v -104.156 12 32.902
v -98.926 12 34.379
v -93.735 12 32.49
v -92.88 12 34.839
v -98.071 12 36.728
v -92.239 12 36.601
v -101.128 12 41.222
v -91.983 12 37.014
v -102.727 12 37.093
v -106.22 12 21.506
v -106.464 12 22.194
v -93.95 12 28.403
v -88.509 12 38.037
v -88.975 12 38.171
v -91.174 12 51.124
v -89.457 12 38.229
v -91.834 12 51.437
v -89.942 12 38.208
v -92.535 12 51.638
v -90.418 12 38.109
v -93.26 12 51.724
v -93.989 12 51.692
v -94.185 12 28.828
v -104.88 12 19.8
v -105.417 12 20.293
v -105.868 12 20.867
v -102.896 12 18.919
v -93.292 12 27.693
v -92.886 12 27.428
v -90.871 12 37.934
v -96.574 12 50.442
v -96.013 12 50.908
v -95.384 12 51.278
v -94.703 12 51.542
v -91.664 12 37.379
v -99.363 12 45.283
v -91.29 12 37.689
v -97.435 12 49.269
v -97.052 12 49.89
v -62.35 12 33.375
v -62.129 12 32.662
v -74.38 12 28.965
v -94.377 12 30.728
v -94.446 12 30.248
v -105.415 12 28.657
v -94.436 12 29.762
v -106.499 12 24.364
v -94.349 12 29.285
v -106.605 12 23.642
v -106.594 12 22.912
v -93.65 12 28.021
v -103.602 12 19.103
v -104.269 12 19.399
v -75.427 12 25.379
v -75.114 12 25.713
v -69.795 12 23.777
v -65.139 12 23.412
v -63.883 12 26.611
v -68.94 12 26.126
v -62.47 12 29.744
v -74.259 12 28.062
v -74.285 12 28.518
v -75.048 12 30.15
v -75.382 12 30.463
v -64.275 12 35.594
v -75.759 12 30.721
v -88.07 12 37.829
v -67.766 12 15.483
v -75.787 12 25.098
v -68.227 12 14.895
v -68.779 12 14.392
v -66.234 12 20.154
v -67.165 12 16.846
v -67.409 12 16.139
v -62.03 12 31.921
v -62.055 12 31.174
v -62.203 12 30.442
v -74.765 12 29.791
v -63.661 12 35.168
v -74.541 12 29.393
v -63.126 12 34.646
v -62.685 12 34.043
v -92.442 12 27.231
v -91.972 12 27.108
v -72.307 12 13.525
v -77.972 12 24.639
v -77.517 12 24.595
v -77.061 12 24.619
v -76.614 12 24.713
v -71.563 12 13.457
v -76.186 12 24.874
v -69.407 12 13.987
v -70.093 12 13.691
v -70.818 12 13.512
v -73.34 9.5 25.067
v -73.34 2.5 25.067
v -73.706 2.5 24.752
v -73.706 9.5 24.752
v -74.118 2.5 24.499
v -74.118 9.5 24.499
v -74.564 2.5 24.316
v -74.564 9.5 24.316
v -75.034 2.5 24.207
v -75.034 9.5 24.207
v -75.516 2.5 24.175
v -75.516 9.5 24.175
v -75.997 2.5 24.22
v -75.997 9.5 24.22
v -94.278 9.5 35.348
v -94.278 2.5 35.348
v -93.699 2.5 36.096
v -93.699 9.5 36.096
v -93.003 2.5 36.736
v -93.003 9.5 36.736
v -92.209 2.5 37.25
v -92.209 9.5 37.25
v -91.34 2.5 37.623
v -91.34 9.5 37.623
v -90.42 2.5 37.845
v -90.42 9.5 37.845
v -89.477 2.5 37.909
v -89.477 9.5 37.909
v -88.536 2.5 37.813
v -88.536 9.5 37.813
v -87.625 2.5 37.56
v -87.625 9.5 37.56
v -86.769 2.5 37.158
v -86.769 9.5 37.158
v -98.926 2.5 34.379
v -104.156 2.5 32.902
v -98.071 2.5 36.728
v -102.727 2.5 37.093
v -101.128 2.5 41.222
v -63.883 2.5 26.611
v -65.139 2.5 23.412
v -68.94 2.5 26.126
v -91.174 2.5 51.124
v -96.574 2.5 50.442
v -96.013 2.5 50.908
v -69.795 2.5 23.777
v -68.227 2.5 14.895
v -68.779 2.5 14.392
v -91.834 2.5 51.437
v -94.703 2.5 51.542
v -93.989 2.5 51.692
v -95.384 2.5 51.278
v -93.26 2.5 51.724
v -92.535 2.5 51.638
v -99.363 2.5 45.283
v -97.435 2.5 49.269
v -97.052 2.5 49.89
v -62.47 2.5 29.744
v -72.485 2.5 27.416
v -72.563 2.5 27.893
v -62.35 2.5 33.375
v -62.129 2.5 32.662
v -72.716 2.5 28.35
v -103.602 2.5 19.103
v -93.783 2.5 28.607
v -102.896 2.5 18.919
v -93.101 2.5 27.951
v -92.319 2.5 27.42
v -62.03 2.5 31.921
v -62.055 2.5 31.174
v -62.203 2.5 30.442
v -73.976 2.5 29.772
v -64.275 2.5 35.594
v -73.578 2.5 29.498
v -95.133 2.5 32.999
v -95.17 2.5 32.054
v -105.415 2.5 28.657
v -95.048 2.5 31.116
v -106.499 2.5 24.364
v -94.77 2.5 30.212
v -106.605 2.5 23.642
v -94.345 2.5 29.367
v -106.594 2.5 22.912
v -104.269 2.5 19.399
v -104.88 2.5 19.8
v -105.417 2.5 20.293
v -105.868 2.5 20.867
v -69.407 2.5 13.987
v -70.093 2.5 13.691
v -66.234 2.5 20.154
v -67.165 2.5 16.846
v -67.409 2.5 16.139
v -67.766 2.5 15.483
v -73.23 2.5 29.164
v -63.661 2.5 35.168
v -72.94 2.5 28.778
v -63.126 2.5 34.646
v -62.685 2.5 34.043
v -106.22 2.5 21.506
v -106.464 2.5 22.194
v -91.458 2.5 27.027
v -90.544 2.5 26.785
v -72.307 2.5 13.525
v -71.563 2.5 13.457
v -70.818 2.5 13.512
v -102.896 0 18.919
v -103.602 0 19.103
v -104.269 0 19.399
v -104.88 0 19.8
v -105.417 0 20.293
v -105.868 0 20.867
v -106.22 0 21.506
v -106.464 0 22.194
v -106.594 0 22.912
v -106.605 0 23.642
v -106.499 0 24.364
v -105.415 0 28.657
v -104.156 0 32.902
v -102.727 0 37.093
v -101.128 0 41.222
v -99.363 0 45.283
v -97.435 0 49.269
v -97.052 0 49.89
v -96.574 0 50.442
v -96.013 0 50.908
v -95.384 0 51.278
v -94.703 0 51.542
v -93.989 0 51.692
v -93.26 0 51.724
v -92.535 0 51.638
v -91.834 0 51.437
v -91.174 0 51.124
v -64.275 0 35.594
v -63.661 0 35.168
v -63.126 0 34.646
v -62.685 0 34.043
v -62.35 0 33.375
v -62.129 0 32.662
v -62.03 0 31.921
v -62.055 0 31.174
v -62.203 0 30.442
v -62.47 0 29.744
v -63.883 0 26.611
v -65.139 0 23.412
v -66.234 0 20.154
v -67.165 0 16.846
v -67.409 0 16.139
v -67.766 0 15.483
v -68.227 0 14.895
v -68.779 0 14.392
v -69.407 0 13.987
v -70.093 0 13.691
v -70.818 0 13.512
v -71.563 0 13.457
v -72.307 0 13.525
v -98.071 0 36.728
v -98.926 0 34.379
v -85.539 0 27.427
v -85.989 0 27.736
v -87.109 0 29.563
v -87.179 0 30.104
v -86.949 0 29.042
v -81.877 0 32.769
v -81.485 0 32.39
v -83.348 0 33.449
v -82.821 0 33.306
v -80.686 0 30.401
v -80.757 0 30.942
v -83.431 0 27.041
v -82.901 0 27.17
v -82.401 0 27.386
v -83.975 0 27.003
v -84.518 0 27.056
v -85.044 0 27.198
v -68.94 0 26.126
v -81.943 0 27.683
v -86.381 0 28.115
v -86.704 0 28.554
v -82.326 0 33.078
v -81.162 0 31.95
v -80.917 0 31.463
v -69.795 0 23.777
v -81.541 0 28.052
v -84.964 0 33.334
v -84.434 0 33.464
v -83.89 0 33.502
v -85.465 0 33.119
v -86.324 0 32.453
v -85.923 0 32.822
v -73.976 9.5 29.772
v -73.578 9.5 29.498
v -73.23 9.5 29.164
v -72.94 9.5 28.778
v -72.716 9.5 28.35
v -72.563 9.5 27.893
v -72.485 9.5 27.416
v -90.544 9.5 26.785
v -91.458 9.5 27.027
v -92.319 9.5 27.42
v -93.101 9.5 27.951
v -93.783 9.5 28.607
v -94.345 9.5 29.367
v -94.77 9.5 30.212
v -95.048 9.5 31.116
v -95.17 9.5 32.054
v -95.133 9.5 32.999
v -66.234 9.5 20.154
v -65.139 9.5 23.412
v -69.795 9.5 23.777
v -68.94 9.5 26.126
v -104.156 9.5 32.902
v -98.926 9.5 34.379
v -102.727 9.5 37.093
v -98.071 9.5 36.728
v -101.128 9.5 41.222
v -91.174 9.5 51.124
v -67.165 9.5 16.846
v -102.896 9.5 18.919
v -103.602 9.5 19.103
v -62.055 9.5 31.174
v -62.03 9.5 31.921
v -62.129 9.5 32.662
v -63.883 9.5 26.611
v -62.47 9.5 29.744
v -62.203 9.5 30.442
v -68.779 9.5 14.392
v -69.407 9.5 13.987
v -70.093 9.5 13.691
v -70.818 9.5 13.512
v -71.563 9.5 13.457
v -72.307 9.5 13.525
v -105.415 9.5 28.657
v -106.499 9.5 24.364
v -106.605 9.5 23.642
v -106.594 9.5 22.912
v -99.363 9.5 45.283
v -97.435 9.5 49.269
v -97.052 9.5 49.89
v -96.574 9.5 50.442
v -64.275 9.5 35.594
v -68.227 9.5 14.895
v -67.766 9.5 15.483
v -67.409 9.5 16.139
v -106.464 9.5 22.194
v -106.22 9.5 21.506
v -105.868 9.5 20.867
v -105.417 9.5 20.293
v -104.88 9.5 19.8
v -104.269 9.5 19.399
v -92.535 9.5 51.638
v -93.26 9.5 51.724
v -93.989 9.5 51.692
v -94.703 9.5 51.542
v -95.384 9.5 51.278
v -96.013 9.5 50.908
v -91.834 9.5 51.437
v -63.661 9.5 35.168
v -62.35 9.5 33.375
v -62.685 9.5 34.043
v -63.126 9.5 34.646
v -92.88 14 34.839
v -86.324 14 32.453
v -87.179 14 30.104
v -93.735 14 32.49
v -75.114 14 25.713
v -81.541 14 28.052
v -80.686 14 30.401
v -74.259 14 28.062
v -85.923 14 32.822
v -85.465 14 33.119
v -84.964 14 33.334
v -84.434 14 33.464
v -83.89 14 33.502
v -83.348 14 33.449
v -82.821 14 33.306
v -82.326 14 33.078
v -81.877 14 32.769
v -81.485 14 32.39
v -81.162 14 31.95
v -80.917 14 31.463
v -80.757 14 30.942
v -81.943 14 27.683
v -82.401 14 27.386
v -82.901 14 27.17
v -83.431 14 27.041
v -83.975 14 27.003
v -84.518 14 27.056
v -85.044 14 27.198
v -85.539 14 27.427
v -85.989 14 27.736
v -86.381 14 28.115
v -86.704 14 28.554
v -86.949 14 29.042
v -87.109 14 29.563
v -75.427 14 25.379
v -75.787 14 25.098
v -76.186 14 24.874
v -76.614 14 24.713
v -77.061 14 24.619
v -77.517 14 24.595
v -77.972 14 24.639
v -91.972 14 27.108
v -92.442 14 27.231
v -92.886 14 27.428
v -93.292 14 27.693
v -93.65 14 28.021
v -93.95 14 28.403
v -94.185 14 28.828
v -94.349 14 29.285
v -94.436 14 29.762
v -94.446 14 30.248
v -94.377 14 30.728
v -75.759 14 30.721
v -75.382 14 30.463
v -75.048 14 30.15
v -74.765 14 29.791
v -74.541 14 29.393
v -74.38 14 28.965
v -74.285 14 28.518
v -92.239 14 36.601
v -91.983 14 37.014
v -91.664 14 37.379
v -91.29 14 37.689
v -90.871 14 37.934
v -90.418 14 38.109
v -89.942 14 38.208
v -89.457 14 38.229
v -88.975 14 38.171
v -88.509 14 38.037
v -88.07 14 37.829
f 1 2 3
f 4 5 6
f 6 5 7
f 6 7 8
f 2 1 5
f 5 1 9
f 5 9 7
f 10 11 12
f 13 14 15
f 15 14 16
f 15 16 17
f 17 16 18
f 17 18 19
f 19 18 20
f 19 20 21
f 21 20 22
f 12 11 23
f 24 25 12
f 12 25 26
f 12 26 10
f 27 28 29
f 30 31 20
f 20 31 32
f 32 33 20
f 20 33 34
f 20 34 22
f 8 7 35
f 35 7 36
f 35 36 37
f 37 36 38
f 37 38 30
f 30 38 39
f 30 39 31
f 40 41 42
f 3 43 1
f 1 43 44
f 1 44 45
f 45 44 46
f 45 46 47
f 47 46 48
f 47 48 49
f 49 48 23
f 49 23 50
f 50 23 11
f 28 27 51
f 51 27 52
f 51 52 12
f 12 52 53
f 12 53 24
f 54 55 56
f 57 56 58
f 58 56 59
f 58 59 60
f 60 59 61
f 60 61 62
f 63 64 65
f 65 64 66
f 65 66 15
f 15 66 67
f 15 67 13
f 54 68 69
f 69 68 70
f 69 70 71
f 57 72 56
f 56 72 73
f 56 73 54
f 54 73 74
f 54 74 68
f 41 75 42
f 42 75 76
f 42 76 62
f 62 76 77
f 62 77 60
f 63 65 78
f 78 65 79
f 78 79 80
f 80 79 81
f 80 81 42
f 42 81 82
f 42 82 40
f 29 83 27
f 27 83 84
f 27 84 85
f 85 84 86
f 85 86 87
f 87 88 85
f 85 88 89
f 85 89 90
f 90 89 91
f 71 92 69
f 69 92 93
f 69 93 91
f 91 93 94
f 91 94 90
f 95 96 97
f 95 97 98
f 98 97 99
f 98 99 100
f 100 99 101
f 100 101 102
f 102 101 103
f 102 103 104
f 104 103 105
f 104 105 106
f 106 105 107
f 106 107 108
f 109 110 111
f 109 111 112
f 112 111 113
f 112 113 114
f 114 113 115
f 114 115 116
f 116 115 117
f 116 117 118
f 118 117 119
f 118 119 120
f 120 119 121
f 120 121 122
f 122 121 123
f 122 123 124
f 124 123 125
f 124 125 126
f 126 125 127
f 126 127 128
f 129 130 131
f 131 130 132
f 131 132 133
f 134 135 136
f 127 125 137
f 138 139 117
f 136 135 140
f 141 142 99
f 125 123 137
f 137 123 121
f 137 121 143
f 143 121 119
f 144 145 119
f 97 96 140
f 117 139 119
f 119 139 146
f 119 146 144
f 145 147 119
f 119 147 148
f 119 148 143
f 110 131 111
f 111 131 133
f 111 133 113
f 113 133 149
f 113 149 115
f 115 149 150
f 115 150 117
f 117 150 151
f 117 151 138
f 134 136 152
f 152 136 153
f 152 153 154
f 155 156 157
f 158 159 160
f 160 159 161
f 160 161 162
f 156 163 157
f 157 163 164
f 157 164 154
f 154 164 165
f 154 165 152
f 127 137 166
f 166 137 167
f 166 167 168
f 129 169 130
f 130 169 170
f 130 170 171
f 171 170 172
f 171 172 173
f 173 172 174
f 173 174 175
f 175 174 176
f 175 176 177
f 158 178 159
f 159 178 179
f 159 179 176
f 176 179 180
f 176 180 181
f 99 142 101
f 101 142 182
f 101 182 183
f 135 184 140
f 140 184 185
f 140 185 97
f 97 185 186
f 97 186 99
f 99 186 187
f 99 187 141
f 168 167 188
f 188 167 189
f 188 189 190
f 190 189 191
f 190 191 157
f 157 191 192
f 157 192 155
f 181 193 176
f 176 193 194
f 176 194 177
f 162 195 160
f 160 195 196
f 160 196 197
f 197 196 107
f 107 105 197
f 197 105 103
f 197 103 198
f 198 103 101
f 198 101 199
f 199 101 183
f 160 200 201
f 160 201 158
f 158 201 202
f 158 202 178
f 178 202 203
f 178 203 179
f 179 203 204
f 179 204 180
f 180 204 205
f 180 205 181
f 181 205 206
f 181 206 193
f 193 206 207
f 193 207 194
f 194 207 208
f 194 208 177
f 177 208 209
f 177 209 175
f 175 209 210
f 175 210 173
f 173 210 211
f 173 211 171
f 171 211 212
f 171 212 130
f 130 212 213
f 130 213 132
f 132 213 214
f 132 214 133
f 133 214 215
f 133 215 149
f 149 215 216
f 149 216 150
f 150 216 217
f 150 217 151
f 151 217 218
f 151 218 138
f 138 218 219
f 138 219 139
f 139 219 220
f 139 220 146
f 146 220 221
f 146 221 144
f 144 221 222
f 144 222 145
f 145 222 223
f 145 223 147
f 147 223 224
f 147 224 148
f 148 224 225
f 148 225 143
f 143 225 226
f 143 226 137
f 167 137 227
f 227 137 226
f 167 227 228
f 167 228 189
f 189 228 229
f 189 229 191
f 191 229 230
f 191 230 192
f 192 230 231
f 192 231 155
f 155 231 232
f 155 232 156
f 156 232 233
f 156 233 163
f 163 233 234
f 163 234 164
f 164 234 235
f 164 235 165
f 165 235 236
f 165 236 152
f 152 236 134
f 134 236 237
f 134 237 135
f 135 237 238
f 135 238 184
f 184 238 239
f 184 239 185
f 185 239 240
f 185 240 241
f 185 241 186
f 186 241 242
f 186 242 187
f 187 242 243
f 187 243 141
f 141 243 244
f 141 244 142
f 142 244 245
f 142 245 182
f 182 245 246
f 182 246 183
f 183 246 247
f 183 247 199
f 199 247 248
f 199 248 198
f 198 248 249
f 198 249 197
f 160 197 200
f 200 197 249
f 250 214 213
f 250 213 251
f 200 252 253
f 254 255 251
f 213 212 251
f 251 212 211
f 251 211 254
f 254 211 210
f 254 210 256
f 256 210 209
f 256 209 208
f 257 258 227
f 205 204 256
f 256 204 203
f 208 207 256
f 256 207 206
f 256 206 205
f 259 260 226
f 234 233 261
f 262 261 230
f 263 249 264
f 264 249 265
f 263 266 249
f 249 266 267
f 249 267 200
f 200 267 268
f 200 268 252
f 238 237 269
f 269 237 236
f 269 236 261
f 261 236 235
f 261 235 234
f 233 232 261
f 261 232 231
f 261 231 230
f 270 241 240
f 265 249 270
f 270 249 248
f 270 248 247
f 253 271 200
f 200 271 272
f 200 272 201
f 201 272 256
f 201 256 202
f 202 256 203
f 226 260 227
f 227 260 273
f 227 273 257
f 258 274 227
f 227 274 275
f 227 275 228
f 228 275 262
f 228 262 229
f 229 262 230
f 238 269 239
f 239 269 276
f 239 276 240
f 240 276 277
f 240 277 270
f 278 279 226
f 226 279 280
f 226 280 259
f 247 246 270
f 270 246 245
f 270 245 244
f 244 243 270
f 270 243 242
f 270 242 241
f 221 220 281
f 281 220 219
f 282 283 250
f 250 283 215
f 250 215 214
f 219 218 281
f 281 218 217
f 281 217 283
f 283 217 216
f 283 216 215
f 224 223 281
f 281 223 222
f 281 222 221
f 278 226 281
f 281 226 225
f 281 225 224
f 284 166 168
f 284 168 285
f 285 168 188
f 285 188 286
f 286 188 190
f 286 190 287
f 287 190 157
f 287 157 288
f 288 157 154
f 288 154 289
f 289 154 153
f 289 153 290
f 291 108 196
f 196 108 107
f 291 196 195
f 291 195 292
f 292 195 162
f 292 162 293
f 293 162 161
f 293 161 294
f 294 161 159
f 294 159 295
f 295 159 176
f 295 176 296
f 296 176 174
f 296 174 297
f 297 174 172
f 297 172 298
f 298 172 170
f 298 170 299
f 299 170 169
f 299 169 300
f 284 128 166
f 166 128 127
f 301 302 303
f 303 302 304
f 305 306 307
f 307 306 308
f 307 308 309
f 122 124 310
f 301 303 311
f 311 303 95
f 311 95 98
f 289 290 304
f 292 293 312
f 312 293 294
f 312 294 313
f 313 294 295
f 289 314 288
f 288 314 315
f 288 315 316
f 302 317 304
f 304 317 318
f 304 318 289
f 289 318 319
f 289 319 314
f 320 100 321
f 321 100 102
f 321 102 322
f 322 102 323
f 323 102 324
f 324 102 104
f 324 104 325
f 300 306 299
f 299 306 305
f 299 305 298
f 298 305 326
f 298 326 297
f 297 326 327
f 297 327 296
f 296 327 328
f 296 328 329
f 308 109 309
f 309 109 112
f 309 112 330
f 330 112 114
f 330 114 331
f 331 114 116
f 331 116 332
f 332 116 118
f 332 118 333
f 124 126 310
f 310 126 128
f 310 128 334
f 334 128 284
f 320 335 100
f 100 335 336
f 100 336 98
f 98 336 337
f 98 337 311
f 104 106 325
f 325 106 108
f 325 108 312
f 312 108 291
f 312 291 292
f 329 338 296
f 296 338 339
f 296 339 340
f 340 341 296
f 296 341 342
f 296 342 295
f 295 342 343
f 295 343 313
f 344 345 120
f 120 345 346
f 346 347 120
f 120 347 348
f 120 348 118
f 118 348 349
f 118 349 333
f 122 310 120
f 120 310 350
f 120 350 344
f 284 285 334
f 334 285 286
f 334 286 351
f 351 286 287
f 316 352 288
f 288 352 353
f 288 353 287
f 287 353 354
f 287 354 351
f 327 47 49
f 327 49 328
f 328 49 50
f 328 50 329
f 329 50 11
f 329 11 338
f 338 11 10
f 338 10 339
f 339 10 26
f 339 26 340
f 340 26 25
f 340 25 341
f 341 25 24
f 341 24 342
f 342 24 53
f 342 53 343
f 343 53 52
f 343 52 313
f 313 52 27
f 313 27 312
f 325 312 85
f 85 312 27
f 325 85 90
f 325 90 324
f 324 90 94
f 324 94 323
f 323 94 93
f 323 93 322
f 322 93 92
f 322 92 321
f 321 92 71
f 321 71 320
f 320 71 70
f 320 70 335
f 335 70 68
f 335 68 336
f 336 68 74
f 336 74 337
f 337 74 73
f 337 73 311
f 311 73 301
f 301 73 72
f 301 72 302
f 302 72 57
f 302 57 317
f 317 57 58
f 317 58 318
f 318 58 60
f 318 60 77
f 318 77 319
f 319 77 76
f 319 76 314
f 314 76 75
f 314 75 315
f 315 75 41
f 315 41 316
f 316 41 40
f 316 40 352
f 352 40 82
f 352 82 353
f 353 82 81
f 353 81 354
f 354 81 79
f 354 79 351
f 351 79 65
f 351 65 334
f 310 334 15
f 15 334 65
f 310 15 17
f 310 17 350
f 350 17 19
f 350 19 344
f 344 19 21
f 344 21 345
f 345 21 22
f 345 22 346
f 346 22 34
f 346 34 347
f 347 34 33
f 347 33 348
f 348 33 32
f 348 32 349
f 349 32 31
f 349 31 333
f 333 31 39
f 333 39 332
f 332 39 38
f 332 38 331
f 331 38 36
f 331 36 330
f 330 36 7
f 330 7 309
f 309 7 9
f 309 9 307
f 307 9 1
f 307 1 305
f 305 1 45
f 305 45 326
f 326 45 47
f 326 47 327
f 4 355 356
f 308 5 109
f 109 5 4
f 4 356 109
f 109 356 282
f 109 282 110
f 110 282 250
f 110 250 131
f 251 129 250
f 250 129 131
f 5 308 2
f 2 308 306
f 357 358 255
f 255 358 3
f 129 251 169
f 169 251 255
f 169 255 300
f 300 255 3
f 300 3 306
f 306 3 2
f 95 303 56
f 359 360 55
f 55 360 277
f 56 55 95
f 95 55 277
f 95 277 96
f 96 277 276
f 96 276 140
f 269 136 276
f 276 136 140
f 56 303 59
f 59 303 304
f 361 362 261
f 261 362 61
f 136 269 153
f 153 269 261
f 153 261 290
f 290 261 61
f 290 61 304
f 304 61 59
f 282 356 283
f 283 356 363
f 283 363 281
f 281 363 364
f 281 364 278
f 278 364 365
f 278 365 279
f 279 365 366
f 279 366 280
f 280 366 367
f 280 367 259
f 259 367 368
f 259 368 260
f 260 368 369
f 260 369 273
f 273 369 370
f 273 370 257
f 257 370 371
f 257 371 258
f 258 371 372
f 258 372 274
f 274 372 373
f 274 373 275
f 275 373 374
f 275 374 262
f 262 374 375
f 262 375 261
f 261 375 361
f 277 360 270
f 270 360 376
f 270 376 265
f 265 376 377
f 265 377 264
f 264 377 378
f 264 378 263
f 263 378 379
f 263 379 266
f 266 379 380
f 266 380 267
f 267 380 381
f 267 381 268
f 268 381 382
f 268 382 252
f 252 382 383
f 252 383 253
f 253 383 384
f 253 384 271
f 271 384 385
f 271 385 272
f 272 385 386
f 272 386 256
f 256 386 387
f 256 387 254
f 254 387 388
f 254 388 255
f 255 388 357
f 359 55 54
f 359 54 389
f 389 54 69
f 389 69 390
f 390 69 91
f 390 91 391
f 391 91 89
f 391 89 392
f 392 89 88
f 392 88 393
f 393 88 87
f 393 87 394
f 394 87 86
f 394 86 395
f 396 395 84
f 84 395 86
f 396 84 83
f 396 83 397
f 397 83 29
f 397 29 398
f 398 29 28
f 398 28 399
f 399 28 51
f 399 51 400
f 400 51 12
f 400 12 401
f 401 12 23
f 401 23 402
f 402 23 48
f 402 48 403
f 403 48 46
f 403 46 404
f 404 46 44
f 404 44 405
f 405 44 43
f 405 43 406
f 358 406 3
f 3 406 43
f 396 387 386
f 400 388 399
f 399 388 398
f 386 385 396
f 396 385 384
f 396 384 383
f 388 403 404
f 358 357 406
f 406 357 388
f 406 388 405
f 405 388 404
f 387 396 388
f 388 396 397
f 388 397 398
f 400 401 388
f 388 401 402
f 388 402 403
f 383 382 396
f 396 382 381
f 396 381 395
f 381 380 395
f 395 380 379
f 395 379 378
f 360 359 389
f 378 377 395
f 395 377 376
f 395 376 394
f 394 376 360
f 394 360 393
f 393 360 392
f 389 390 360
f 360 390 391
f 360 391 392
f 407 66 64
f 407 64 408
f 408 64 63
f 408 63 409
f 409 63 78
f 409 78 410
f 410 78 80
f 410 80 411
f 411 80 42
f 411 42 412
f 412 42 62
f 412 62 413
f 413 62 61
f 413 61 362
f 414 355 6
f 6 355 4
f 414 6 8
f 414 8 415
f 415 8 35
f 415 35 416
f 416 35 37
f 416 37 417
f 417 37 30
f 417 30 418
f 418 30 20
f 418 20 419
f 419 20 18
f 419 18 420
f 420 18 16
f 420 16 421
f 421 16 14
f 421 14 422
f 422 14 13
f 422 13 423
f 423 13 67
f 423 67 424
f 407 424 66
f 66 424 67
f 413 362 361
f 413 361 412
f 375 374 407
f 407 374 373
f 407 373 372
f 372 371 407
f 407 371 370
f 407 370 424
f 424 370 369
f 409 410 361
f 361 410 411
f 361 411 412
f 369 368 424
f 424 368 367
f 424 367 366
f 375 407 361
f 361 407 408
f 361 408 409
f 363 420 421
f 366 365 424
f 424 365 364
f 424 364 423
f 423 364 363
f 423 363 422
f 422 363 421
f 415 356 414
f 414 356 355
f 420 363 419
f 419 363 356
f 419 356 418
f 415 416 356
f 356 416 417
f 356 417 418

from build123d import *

# Parameters (mm, degrees)
BOSS_EXTRUDE1_DEPTH = 2.5
BOSS_EXTRUDE2_DEPTH = 7
CUT_EXTRUDE1_DEPTH  = 120.106847206
BOSS_EXTRUDE3_START = 2
BOSS_EXTRUDE3_DEPTH = 2


with BuildPart() as part:
    # Sketch1 → Boss-Extrude1 (new body)
    with BuildSketch(Plane(origin=(0, 0, 0), x_dir=(1, 0, 0), z_dir=(0, 1, 0))):
        with BuildLine():
            Line((-72.307015928, -13.524843261), (-102.896359968, -18.918569937))
            ThreePointArc((-102.896359968, -18.918569937), (-105.867796955, -20.867043845), (-106.499308602, -24.363782522))
            ThreePointArc((-106.499308602, -24.363782522), (-102.726730434, -37.092873959), (-97.434590717, -49.268890224))
            ThreePointArc((-97.434590717, -49.268890224), (-94.703164434, -51.541619594), (-91.174456756, -51.124234325))
            Line((-91.174456756, -51.124234325), (-64.274639058, -35.593617336))
            ThreePointArc((-64.274639058, -35.593617336), (-62.224627836, -33.023116562), (-62.470083693, -29.74443212))
            ThreePointArc((-62.470083693, -29.74443212), (-65.139025602, -23.412068226), (-67.164862535, -16.845633263))
            ThreePointArc((-67.164862535, -16.845633263), (-69.084330175, -14.176239282), (-72.307015928, -13.524843261))
        make_face()
    boss_extrude1 = extrude(amount=BOSS_EXTRUDE1_DEPTH)

    # Sketch2 → Boss-Extrude2 (add)
    with BuildSketch(Plane(origin=(0, 2.5, 0), x_dir=(1, 0, 0), z_dir=(0, 1, 0))):
        with BuildLine():
            Line((-75.996588964, -24.219866543), (-90.54428362, -26.785017618))
            ThreePointArc((-90.54428362, -26.785017618), (-94.837750272, -34.221520002), (-86.76867241, -37.158424161))
            Line((-86.76867241, -37.158424161), (-73.975644431, -29.772366014))
            ThreePointArc((-73.975644431, -29.772366014), (-72.656566568, -26.148229372), (-75.996588964, -24.219866543))
        make_face()
    extrude(amount=BOSS_EXTRUDE2_DEPTH)

    # Mirror1: Boss-Extrude1 across plane
    add(boss_extrude1.mirror(Plane.ZX.offset(6)))

    # Sketch4 → Cut-Extrude1 (cut, through all)
    with BuildSketch(Plane(origin=(0, 12, 0), x_dir=(1, 0, 0), z_dir=(0, 1, 0))):
        with BuildLine():
            Line((-98.925638819, -34.379167538), (-87.179481059, -30.103915746))
            ThreePointArc((-87.179481059, -30.103915746), (-85.044443484, -27.198470075), (-81.541325335, -28.051794886))
            Line((-81.541325335, -28.051794886), (-69.795167575, -23.776543095))
            Line((-69.795167575, -23.776543095), (-68.940117216, -26.125774647))
            Line((-68.940117216, -26.125774647), (-80.686274976, -30.401026438))
            ThreePointArc((-80.686274976, -30.401026438), (-82.821312552, -33.30647211), (-86.324430701, -32.453147298))
            Line((-86.324430701, -32.453147298), (-98.070588461, -36.72839909))
            Line((-98.070588461, -36.72839909), (-98.925638819, -34.379167538))
        make_face()
    extrude(amount=-CUT_EXTRUDE1_DEPTH, mode=Mode.SUBTRACT)

    # Sketch5 → Boss-Extrude3 (add)
    with BuildSketch(Plane(origin=(0, 12, 0), x_dir=(1, 0, 0), z_dir=(0, 1, 0)).offset(BOSS_EXTRUDE3_START)):
        with BuildLine():
            Line((-88.070170969, -37.828843014), (-75.758777587, -30.720856731))
            ThreePointArc((-75.758777587, -30.720856731), (-74.645598026, -29.596311171), (-74.25939673, -28.061834057))
            Line((-74.25939673, -28.061834057), (-80.686274976, -30.401026438))
            ThreePointArc((-80.686274976, -30.401026438), (-82.821312552, -33.30647211), (-86.324430701, -32.453147298))
            Line((-86.324430701, -32.453147298), (-92.880168291, -34.839240645))
            Line((-92.880168291, -34.839240645), (-92.238880522, -36.601164309))
            ThreePointArc((-92.238880522, -36.601164309), (-90.417678642, -38.108566439), (-88.070170969, -37.828843014))
        make_face()
        with BuildLine():
            Line((-77.97222629, -24.6394564), (-91.97222629, -27.108034129))
            ThreePointArc((-91.97222629, -27.108034129), (-93.95032425, -28.4027024), (-94.376506418, -30.728085429))
            Line((-94.376506418, -30.728085429), (-93.735218649, -32.490009093))
            Line((-93.735218649, -32.490009093), (-87.179481059, -30.103915746))
            ThreePointArc((-87.179481059, -30.103915746), (-85.044443484, -27.198470075), (-81.541325335, -28.051794886))
            Line((-81.541325335, -28.051794886), (-75.114447088, -25.712602505))
            ThreePointArc((-75.114447088, -25.712602505), (-76.396637321, -24.785370248), (-77.97222629, -24.6394564))
        make_face()
    extrude(amount=-BOSS_EXTRUDE3_DEPTH)


solid = part.part
